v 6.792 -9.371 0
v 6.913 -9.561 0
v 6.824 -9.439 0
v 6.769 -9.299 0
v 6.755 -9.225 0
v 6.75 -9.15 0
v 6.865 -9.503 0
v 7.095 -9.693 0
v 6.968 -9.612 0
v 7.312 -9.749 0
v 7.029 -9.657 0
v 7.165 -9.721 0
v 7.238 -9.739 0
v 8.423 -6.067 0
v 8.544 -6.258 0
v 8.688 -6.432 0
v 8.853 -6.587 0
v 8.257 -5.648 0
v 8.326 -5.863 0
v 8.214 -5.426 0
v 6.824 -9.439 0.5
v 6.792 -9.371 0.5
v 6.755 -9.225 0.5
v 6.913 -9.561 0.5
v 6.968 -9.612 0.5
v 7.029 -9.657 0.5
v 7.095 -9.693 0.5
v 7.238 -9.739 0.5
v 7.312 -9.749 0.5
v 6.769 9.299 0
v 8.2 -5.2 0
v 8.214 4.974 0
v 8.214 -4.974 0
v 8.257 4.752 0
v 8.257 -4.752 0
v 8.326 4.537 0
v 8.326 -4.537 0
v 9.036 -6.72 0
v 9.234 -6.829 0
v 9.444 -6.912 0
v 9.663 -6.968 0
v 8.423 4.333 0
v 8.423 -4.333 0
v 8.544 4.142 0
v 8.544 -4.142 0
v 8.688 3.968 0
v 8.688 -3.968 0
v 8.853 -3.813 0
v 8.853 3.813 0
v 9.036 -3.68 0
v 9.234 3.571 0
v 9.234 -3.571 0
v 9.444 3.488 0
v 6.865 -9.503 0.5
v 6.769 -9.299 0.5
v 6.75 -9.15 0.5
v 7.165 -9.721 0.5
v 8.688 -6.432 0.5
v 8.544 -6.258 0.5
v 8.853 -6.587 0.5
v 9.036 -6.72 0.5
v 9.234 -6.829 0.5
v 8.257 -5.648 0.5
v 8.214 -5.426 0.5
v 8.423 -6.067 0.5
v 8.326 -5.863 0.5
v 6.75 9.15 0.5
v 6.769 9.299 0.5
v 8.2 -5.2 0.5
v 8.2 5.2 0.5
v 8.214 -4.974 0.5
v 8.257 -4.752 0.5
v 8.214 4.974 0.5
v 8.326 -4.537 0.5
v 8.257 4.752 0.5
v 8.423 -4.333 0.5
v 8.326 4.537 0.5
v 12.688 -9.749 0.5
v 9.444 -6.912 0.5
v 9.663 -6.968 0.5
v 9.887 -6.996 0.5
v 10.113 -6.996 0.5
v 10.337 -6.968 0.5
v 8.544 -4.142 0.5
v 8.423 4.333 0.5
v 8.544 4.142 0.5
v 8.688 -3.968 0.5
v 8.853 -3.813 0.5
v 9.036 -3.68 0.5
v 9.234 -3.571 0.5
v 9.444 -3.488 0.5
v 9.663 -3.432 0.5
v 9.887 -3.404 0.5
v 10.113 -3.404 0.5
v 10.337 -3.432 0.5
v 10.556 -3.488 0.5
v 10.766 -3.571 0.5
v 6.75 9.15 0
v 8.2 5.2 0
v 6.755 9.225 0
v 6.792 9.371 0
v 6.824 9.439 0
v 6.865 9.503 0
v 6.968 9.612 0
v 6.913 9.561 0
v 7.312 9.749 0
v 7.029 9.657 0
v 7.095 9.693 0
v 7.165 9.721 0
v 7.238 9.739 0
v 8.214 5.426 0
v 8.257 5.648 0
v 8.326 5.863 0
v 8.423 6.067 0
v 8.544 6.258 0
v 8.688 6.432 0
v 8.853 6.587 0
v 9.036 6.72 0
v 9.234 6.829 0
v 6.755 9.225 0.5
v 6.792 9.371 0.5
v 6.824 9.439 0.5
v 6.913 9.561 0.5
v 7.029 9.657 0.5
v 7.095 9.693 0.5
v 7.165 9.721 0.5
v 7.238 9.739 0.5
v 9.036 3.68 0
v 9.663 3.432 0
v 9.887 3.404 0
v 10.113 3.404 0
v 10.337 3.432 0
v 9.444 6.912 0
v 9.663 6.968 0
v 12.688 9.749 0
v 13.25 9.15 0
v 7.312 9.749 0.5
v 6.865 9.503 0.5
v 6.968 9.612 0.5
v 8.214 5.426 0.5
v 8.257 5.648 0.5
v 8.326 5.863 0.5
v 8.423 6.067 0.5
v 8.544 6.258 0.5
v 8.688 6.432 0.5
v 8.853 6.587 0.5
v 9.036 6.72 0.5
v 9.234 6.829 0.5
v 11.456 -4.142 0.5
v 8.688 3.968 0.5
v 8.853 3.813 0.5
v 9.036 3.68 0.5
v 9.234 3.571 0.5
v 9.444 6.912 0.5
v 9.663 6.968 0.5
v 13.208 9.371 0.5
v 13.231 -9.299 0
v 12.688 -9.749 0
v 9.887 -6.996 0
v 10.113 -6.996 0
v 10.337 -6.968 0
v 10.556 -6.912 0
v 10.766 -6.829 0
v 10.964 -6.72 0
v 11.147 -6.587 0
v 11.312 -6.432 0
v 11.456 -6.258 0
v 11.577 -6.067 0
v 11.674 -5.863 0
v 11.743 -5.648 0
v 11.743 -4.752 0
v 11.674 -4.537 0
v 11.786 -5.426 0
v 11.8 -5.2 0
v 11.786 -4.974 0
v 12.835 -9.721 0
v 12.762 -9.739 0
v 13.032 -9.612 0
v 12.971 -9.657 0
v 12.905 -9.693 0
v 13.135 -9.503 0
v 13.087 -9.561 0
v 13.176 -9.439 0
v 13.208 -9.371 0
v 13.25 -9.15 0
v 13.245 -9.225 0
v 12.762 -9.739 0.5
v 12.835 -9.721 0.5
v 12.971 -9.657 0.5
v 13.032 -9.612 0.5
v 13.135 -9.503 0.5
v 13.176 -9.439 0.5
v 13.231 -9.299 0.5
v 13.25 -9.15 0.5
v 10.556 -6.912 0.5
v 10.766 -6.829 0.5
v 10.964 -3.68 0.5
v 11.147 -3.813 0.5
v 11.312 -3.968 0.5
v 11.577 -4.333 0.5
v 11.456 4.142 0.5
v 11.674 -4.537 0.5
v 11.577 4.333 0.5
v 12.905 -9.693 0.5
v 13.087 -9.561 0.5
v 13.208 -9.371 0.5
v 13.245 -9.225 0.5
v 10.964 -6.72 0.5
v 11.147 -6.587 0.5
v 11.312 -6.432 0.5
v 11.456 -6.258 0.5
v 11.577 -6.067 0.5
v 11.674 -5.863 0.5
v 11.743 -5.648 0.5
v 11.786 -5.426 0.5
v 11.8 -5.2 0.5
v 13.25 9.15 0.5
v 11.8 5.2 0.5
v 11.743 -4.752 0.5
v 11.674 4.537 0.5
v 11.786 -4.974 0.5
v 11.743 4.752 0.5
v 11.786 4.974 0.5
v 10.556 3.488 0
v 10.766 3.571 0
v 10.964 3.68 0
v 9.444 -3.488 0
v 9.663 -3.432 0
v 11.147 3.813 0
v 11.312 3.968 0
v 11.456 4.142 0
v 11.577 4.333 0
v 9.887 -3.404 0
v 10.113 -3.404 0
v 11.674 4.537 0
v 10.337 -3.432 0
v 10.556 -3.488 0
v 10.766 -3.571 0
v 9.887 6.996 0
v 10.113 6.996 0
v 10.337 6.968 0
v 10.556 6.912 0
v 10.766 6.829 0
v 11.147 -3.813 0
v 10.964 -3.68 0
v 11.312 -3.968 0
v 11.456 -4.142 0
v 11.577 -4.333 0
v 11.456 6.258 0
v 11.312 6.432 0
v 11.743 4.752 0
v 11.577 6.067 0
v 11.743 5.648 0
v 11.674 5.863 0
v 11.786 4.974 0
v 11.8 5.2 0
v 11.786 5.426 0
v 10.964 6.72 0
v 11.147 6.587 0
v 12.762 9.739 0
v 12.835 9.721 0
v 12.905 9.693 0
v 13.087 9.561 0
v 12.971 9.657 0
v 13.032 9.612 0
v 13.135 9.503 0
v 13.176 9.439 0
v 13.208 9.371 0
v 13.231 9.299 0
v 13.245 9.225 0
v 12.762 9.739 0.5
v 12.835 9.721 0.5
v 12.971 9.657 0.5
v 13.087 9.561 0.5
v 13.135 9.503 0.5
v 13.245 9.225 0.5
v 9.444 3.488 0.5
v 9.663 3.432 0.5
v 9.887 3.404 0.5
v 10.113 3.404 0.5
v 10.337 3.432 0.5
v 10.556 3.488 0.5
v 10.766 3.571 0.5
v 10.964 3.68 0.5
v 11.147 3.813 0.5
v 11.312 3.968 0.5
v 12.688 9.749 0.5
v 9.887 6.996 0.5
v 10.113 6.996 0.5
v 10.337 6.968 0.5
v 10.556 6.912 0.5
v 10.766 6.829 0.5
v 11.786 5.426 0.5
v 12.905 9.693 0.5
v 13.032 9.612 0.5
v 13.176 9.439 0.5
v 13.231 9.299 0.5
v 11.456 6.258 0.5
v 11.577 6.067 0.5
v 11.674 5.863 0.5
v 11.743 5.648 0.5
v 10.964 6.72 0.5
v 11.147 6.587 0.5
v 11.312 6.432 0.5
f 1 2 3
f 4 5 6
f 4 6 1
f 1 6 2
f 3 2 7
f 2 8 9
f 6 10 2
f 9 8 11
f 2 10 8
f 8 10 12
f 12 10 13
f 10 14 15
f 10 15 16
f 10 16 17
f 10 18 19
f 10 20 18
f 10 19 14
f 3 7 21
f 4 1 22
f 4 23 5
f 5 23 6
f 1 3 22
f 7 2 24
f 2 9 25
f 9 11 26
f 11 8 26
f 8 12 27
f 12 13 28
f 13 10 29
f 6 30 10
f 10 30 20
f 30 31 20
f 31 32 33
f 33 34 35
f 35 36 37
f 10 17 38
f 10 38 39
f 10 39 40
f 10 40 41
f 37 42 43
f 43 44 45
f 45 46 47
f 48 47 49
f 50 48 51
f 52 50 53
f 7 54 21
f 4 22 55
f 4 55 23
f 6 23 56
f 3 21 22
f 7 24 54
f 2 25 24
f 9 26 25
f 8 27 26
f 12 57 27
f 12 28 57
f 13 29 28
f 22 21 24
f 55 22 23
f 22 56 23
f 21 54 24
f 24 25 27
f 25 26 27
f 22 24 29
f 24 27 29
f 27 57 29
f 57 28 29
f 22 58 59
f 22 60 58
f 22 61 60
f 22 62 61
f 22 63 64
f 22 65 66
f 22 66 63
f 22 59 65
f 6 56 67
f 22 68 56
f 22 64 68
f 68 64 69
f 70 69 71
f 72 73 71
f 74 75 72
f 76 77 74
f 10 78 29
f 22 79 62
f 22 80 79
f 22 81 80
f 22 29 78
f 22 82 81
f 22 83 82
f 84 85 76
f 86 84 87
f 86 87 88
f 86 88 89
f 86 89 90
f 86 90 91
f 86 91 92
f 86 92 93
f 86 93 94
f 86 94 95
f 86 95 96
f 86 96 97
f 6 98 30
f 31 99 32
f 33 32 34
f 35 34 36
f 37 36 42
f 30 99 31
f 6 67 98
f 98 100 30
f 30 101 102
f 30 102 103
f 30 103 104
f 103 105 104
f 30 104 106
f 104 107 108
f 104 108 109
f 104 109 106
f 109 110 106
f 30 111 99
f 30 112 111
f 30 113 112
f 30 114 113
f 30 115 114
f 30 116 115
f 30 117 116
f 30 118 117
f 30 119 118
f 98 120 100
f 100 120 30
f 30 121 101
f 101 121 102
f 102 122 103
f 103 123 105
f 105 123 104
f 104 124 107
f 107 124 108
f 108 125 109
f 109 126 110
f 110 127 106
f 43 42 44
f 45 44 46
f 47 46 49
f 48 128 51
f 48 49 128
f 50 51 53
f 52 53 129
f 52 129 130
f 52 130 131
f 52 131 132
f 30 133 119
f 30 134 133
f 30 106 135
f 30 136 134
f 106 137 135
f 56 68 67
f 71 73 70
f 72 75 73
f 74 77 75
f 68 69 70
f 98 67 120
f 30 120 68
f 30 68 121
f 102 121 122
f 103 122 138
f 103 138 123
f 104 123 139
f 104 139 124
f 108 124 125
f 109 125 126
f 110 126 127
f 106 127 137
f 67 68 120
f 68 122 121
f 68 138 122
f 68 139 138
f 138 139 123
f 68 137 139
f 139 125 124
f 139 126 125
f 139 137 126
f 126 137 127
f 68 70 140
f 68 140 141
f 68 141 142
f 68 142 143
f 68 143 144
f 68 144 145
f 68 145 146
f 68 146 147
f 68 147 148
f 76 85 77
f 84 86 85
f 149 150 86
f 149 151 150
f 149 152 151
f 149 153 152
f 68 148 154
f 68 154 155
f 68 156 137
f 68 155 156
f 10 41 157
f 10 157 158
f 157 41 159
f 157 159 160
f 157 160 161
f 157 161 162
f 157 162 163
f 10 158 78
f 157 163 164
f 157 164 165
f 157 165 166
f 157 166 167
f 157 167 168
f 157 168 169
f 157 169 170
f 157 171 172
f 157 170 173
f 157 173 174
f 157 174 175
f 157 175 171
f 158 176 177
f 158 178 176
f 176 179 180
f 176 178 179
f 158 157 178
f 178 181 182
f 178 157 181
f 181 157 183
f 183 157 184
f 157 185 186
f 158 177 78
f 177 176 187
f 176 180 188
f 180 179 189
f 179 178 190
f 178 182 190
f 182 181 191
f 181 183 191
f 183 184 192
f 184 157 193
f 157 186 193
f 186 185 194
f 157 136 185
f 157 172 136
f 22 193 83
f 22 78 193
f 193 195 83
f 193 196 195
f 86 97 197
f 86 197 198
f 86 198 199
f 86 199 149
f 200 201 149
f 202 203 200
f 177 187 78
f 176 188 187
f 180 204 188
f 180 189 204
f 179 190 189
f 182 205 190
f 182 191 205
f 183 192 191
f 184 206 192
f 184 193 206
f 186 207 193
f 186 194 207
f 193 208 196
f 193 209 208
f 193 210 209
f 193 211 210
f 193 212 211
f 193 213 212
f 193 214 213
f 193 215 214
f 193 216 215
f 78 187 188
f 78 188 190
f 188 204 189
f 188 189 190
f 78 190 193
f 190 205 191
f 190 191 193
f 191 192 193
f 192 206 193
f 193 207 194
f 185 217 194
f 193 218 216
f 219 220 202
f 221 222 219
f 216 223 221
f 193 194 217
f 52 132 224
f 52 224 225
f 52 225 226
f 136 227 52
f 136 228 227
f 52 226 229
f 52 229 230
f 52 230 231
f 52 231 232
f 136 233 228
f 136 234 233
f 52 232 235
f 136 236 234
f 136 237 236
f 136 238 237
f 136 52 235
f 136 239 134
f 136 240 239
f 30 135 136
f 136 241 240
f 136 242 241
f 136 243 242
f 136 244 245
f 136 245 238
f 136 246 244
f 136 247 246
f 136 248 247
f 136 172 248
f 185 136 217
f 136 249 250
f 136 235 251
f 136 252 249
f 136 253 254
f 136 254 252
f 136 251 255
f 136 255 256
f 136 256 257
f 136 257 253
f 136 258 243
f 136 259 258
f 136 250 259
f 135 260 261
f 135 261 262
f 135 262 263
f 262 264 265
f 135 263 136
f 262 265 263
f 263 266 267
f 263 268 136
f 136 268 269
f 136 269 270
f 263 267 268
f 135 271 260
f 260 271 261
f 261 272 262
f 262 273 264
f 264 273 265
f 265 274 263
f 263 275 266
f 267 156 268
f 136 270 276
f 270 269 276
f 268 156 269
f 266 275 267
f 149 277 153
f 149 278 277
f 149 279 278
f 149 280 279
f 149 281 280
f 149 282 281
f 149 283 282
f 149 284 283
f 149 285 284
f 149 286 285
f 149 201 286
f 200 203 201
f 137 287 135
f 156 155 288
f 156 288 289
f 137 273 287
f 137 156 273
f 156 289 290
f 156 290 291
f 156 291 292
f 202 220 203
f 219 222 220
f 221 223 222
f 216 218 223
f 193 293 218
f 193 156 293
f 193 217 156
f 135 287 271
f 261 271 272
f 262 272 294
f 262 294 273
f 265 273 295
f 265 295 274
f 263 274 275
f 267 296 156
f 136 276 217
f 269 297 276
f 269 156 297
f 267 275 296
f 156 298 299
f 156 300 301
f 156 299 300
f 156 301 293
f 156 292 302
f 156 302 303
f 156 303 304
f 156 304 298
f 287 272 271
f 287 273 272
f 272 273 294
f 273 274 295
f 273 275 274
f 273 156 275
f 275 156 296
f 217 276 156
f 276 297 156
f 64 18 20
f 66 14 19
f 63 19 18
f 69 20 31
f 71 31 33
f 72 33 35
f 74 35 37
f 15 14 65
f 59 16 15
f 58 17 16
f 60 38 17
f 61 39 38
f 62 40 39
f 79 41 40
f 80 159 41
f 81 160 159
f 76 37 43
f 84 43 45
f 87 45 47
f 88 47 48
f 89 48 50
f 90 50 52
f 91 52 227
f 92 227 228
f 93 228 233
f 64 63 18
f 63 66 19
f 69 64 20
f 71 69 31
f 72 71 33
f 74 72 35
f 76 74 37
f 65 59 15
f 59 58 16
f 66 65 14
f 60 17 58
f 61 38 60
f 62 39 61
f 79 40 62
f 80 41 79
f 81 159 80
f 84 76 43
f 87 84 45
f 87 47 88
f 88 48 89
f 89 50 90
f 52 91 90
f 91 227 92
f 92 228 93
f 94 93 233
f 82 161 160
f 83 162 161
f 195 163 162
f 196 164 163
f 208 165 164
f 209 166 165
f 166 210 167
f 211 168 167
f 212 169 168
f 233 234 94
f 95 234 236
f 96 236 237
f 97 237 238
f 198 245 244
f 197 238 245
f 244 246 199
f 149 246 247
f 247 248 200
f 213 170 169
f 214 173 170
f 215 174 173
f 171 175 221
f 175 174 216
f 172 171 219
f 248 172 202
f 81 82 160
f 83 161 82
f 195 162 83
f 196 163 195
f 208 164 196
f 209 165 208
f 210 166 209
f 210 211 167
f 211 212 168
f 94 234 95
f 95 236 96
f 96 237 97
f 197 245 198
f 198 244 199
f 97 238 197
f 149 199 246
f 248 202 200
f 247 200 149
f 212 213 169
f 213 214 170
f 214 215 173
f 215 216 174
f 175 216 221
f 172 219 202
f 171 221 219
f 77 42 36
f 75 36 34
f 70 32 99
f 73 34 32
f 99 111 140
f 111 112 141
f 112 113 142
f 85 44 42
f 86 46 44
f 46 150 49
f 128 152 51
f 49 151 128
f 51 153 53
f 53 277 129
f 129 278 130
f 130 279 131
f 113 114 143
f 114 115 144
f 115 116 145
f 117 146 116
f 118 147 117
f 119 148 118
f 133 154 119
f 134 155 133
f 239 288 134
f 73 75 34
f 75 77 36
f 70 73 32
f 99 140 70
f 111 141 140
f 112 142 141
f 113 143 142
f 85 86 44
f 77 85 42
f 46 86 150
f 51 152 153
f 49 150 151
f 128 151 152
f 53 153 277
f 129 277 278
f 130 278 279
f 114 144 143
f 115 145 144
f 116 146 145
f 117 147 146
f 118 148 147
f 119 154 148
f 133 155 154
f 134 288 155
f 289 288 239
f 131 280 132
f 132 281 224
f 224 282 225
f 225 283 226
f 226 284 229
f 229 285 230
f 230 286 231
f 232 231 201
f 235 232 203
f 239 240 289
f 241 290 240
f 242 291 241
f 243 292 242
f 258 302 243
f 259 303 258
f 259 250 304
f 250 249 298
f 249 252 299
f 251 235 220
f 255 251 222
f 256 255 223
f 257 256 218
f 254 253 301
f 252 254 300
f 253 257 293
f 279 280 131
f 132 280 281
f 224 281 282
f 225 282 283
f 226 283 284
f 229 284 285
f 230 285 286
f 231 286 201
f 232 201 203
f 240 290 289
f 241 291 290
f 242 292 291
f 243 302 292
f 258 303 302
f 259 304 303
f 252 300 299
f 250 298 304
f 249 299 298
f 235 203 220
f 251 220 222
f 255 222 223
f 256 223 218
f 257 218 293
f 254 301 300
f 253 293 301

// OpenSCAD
$fn = 50;

difference() {
	union() {
		translate(v = [-4.5, 0, 0.5]) {
			rotate(a = [0, 0, 0]) {
				difference() {
					union() {
						translate(v = [14.5, 0, -0.5]) {
							hull() {
								translate(v = [-2.65, 9.15, 0]) {
									cylinder(h = 0.5, r = 0.6);
								}
								translate(v = [2.65, 9.15, 0]) {
									cylinder(h = 0.5, r = 0.6);
								}
								translate(v = [-2.65, -9.15, 0]) {
									cylinder(h = 0.5, r = 0.6);
								}
								translate(v = [2.65, -9.15, 0]) {
									cylinder(h = 0.5, r = 0.6);
								}
							}
						}
					}
					union() {
						translate(v = [14.5, -5.2, -1.5]) {
							cylinder(h = 2.5, r = 1.8);
						}
						translate(v = [14.5, 5.2, -1.5]) {
							cylinder(h = 2.5, r = 1.8);
						}
					}
				}
			}
		}
	}
	union();
}
